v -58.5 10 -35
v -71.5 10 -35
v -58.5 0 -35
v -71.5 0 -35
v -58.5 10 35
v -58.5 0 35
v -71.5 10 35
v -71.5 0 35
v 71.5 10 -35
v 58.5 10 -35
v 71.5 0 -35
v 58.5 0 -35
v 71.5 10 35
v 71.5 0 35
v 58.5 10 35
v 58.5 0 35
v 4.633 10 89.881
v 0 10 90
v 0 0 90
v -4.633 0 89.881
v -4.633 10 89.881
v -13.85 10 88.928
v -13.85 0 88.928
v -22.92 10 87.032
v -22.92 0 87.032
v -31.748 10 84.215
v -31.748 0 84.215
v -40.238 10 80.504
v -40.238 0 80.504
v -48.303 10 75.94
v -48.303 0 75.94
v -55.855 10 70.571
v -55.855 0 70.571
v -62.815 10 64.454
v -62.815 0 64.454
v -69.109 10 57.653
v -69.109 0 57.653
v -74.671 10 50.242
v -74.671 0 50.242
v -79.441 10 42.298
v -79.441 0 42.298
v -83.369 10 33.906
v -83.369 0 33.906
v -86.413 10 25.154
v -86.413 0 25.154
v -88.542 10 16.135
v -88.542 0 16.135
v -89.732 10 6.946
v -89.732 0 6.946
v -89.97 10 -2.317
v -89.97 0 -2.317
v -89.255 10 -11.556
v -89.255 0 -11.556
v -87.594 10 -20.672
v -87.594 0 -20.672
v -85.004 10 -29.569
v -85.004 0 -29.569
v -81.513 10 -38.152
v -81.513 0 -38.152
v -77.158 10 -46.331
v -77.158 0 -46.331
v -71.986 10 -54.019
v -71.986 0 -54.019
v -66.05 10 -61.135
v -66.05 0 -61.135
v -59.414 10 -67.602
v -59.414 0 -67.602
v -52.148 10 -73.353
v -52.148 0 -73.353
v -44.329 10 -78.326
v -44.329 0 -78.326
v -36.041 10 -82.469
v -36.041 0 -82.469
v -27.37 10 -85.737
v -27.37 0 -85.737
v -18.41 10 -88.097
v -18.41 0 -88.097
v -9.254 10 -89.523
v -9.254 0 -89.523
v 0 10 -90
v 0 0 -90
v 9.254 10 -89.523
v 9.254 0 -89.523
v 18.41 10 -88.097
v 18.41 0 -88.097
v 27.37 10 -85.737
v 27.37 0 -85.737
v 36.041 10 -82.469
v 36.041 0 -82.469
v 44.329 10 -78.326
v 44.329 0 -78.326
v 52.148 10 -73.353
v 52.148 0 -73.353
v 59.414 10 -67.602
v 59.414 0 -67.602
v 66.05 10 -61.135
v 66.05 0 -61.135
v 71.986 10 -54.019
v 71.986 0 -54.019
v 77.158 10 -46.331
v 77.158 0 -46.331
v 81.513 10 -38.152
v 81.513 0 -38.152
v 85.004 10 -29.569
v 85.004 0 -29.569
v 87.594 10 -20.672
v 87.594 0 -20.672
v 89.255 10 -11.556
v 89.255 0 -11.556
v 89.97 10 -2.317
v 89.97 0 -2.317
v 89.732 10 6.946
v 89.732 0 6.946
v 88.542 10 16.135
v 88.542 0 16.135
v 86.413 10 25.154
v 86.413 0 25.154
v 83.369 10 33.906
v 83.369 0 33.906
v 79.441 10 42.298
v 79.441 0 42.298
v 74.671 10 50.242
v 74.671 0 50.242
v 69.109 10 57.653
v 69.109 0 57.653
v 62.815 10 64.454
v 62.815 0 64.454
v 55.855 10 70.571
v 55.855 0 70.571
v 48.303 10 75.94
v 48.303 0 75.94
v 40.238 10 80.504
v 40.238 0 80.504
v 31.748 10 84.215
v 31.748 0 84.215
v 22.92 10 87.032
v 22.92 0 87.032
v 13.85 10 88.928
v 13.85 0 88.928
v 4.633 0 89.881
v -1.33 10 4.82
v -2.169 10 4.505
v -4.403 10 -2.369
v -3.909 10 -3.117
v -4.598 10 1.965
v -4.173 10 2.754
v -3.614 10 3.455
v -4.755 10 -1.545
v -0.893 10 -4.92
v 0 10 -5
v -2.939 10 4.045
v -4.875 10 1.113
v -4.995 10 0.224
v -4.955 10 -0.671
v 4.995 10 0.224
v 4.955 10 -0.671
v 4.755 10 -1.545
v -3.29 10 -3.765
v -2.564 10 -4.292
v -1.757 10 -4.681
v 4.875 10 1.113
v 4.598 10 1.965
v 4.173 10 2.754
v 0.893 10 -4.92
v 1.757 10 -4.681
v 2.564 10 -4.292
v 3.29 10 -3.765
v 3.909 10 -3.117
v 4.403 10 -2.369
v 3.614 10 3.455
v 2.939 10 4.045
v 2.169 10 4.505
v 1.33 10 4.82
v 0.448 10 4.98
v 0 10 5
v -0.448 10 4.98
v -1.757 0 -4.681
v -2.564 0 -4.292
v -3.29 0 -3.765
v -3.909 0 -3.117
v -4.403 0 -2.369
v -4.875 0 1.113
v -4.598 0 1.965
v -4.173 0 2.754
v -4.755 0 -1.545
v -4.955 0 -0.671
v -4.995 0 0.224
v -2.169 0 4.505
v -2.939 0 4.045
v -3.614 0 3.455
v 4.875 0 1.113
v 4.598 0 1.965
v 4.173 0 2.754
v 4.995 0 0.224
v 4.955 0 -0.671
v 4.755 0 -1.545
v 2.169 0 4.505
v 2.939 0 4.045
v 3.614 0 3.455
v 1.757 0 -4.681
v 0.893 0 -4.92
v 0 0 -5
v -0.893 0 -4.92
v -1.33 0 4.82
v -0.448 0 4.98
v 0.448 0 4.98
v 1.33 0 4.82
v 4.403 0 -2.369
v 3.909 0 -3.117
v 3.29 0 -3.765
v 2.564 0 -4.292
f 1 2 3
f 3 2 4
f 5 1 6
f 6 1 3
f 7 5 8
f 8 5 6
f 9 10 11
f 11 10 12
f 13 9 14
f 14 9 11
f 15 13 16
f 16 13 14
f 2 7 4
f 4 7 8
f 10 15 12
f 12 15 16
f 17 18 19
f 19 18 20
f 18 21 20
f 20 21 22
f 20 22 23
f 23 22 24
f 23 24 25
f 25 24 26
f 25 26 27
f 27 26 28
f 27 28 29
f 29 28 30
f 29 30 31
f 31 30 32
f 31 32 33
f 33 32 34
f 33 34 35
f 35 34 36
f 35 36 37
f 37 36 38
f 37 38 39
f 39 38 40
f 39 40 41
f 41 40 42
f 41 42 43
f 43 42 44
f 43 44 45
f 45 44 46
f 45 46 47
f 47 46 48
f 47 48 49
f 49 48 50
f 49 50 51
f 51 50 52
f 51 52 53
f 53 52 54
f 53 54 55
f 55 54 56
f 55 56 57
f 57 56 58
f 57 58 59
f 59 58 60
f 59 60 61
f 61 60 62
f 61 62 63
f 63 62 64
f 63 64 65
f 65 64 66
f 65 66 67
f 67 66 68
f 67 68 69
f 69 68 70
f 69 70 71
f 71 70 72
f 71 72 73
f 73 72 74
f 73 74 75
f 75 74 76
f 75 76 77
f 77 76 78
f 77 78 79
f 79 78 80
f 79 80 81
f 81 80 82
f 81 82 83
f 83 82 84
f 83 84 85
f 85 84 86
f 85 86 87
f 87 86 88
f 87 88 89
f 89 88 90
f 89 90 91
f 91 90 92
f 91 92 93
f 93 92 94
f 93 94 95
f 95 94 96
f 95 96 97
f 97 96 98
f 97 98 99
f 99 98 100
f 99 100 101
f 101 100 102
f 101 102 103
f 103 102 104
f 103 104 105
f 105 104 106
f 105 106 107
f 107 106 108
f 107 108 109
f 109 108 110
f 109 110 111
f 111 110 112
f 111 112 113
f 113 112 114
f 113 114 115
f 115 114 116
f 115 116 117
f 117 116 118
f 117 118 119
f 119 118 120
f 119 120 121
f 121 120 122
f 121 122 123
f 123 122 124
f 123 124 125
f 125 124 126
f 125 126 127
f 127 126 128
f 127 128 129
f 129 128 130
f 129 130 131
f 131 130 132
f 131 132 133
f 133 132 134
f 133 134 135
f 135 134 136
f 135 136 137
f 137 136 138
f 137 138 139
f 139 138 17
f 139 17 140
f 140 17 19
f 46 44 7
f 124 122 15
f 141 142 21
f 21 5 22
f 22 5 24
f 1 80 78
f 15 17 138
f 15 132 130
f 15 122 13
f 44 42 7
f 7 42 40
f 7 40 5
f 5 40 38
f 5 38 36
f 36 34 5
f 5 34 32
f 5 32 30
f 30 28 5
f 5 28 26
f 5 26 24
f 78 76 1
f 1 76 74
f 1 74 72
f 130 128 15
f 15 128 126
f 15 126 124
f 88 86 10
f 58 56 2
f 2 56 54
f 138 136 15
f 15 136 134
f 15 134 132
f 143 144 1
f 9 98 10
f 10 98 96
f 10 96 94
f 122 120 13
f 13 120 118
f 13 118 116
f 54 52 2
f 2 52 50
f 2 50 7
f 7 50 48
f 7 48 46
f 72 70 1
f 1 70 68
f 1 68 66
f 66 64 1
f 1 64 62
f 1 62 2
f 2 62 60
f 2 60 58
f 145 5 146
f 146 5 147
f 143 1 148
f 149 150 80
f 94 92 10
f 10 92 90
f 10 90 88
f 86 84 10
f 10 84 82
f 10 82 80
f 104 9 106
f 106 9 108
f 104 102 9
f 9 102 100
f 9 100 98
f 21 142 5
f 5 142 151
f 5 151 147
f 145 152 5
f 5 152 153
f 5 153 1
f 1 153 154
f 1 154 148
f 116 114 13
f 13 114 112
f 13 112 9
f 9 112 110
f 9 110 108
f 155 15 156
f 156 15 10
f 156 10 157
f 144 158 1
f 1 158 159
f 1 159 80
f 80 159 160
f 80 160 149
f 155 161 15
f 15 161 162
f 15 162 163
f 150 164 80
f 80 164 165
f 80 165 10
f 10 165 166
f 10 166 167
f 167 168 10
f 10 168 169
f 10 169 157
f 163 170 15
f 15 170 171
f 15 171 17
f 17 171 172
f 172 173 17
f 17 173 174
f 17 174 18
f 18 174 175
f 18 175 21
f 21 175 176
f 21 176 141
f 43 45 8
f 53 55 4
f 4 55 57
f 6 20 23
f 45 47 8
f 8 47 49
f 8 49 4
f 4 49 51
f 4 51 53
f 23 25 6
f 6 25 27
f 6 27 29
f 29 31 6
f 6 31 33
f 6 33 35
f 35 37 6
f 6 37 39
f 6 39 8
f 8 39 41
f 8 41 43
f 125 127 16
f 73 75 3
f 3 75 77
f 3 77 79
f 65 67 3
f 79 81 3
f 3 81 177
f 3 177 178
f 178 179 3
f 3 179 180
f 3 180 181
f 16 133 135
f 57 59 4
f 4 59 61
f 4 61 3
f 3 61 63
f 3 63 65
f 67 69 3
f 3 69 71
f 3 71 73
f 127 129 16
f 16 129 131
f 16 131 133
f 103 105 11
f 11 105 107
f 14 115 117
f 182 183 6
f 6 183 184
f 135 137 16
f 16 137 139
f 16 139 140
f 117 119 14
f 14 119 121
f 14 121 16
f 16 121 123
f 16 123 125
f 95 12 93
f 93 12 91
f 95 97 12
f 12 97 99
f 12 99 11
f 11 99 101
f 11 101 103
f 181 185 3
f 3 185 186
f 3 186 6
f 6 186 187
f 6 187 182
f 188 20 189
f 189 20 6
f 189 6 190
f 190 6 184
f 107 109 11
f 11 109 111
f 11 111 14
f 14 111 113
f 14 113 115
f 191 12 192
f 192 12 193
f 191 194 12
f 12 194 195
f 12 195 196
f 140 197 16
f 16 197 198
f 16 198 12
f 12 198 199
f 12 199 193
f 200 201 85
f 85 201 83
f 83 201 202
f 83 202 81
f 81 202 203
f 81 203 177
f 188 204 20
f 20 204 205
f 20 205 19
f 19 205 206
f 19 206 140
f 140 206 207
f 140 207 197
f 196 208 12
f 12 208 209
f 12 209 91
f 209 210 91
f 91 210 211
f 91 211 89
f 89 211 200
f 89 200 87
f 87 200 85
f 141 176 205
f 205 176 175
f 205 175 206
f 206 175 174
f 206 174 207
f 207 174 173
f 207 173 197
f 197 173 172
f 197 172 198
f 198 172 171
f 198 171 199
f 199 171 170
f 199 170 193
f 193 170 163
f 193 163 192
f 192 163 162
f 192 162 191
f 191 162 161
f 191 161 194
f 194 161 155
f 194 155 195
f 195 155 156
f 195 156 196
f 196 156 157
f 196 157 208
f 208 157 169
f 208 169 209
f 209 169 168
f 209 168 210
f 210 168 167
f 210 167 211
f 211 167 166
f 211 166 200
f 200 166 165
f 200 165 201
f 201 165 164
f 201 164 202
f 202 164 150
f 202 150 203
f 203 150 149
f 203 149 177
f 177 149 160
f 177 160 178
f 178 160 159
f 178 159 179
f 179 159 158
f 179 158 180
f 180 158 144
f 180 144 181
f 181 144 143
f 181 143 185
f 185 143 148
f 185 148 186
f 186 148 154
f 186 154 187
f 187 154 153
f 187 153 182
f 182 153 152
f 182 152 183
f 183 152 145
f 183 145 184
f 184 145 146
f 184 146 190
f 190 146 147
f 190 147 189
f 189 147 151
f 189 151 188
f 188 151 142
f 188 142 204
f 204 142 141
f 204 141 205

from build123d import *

# Parameters (mm, degrees)
SKETCH1_R           = 90
SKETCH1_W           = 13
SKETCH1_H           = 70
BOSS_EXTRUDE1_DEPTH = 10
CUT_EXTRUDE1_REACH  = 12
SKETCH2_R           = 5


with BuildPart() as part:
    # Sketch1 → Boss-Extrude1 (new body)
    with BuildSketch(Plane(origin=(0, 0, 0), x_dir=(1, 0, 0), z_dir=(0, 1, 0))):
        Circle(SKETCH1_R)
        with Locations((-65, 0)):
            Rectangle(SKETCH1_W, SKETCH1_H, mode=Mode.SUBTRACT)
        with Locations((65, 0)):
            Rectangle(SKETCH1_W, SKETCH1_H, mode=Mode.SUBTRACT)
    extrude(amount=BOSS_EXTRUDE1_DEPTH)

    # Sketch2 → Cut-Extrude1 (cut, up to next)
    with BuildSketch(Plane.XZ, mode=Mode.PRIVATE) as cut_extrude1_sk1:
        Circle(SKETCH2_R)
    cut_extrude1_tool1 = extrude(cut_extrude1_sk1.sketch, amount=-CUT_EXTRUDE1_REACH, mode=Mode.PRIVATE) & part.part
    add(cut_extrude1_tool1.solids().sort_by_distance((0, 0, 0))[0], mode=Mode.SUBTRACT)


solid = part.part
